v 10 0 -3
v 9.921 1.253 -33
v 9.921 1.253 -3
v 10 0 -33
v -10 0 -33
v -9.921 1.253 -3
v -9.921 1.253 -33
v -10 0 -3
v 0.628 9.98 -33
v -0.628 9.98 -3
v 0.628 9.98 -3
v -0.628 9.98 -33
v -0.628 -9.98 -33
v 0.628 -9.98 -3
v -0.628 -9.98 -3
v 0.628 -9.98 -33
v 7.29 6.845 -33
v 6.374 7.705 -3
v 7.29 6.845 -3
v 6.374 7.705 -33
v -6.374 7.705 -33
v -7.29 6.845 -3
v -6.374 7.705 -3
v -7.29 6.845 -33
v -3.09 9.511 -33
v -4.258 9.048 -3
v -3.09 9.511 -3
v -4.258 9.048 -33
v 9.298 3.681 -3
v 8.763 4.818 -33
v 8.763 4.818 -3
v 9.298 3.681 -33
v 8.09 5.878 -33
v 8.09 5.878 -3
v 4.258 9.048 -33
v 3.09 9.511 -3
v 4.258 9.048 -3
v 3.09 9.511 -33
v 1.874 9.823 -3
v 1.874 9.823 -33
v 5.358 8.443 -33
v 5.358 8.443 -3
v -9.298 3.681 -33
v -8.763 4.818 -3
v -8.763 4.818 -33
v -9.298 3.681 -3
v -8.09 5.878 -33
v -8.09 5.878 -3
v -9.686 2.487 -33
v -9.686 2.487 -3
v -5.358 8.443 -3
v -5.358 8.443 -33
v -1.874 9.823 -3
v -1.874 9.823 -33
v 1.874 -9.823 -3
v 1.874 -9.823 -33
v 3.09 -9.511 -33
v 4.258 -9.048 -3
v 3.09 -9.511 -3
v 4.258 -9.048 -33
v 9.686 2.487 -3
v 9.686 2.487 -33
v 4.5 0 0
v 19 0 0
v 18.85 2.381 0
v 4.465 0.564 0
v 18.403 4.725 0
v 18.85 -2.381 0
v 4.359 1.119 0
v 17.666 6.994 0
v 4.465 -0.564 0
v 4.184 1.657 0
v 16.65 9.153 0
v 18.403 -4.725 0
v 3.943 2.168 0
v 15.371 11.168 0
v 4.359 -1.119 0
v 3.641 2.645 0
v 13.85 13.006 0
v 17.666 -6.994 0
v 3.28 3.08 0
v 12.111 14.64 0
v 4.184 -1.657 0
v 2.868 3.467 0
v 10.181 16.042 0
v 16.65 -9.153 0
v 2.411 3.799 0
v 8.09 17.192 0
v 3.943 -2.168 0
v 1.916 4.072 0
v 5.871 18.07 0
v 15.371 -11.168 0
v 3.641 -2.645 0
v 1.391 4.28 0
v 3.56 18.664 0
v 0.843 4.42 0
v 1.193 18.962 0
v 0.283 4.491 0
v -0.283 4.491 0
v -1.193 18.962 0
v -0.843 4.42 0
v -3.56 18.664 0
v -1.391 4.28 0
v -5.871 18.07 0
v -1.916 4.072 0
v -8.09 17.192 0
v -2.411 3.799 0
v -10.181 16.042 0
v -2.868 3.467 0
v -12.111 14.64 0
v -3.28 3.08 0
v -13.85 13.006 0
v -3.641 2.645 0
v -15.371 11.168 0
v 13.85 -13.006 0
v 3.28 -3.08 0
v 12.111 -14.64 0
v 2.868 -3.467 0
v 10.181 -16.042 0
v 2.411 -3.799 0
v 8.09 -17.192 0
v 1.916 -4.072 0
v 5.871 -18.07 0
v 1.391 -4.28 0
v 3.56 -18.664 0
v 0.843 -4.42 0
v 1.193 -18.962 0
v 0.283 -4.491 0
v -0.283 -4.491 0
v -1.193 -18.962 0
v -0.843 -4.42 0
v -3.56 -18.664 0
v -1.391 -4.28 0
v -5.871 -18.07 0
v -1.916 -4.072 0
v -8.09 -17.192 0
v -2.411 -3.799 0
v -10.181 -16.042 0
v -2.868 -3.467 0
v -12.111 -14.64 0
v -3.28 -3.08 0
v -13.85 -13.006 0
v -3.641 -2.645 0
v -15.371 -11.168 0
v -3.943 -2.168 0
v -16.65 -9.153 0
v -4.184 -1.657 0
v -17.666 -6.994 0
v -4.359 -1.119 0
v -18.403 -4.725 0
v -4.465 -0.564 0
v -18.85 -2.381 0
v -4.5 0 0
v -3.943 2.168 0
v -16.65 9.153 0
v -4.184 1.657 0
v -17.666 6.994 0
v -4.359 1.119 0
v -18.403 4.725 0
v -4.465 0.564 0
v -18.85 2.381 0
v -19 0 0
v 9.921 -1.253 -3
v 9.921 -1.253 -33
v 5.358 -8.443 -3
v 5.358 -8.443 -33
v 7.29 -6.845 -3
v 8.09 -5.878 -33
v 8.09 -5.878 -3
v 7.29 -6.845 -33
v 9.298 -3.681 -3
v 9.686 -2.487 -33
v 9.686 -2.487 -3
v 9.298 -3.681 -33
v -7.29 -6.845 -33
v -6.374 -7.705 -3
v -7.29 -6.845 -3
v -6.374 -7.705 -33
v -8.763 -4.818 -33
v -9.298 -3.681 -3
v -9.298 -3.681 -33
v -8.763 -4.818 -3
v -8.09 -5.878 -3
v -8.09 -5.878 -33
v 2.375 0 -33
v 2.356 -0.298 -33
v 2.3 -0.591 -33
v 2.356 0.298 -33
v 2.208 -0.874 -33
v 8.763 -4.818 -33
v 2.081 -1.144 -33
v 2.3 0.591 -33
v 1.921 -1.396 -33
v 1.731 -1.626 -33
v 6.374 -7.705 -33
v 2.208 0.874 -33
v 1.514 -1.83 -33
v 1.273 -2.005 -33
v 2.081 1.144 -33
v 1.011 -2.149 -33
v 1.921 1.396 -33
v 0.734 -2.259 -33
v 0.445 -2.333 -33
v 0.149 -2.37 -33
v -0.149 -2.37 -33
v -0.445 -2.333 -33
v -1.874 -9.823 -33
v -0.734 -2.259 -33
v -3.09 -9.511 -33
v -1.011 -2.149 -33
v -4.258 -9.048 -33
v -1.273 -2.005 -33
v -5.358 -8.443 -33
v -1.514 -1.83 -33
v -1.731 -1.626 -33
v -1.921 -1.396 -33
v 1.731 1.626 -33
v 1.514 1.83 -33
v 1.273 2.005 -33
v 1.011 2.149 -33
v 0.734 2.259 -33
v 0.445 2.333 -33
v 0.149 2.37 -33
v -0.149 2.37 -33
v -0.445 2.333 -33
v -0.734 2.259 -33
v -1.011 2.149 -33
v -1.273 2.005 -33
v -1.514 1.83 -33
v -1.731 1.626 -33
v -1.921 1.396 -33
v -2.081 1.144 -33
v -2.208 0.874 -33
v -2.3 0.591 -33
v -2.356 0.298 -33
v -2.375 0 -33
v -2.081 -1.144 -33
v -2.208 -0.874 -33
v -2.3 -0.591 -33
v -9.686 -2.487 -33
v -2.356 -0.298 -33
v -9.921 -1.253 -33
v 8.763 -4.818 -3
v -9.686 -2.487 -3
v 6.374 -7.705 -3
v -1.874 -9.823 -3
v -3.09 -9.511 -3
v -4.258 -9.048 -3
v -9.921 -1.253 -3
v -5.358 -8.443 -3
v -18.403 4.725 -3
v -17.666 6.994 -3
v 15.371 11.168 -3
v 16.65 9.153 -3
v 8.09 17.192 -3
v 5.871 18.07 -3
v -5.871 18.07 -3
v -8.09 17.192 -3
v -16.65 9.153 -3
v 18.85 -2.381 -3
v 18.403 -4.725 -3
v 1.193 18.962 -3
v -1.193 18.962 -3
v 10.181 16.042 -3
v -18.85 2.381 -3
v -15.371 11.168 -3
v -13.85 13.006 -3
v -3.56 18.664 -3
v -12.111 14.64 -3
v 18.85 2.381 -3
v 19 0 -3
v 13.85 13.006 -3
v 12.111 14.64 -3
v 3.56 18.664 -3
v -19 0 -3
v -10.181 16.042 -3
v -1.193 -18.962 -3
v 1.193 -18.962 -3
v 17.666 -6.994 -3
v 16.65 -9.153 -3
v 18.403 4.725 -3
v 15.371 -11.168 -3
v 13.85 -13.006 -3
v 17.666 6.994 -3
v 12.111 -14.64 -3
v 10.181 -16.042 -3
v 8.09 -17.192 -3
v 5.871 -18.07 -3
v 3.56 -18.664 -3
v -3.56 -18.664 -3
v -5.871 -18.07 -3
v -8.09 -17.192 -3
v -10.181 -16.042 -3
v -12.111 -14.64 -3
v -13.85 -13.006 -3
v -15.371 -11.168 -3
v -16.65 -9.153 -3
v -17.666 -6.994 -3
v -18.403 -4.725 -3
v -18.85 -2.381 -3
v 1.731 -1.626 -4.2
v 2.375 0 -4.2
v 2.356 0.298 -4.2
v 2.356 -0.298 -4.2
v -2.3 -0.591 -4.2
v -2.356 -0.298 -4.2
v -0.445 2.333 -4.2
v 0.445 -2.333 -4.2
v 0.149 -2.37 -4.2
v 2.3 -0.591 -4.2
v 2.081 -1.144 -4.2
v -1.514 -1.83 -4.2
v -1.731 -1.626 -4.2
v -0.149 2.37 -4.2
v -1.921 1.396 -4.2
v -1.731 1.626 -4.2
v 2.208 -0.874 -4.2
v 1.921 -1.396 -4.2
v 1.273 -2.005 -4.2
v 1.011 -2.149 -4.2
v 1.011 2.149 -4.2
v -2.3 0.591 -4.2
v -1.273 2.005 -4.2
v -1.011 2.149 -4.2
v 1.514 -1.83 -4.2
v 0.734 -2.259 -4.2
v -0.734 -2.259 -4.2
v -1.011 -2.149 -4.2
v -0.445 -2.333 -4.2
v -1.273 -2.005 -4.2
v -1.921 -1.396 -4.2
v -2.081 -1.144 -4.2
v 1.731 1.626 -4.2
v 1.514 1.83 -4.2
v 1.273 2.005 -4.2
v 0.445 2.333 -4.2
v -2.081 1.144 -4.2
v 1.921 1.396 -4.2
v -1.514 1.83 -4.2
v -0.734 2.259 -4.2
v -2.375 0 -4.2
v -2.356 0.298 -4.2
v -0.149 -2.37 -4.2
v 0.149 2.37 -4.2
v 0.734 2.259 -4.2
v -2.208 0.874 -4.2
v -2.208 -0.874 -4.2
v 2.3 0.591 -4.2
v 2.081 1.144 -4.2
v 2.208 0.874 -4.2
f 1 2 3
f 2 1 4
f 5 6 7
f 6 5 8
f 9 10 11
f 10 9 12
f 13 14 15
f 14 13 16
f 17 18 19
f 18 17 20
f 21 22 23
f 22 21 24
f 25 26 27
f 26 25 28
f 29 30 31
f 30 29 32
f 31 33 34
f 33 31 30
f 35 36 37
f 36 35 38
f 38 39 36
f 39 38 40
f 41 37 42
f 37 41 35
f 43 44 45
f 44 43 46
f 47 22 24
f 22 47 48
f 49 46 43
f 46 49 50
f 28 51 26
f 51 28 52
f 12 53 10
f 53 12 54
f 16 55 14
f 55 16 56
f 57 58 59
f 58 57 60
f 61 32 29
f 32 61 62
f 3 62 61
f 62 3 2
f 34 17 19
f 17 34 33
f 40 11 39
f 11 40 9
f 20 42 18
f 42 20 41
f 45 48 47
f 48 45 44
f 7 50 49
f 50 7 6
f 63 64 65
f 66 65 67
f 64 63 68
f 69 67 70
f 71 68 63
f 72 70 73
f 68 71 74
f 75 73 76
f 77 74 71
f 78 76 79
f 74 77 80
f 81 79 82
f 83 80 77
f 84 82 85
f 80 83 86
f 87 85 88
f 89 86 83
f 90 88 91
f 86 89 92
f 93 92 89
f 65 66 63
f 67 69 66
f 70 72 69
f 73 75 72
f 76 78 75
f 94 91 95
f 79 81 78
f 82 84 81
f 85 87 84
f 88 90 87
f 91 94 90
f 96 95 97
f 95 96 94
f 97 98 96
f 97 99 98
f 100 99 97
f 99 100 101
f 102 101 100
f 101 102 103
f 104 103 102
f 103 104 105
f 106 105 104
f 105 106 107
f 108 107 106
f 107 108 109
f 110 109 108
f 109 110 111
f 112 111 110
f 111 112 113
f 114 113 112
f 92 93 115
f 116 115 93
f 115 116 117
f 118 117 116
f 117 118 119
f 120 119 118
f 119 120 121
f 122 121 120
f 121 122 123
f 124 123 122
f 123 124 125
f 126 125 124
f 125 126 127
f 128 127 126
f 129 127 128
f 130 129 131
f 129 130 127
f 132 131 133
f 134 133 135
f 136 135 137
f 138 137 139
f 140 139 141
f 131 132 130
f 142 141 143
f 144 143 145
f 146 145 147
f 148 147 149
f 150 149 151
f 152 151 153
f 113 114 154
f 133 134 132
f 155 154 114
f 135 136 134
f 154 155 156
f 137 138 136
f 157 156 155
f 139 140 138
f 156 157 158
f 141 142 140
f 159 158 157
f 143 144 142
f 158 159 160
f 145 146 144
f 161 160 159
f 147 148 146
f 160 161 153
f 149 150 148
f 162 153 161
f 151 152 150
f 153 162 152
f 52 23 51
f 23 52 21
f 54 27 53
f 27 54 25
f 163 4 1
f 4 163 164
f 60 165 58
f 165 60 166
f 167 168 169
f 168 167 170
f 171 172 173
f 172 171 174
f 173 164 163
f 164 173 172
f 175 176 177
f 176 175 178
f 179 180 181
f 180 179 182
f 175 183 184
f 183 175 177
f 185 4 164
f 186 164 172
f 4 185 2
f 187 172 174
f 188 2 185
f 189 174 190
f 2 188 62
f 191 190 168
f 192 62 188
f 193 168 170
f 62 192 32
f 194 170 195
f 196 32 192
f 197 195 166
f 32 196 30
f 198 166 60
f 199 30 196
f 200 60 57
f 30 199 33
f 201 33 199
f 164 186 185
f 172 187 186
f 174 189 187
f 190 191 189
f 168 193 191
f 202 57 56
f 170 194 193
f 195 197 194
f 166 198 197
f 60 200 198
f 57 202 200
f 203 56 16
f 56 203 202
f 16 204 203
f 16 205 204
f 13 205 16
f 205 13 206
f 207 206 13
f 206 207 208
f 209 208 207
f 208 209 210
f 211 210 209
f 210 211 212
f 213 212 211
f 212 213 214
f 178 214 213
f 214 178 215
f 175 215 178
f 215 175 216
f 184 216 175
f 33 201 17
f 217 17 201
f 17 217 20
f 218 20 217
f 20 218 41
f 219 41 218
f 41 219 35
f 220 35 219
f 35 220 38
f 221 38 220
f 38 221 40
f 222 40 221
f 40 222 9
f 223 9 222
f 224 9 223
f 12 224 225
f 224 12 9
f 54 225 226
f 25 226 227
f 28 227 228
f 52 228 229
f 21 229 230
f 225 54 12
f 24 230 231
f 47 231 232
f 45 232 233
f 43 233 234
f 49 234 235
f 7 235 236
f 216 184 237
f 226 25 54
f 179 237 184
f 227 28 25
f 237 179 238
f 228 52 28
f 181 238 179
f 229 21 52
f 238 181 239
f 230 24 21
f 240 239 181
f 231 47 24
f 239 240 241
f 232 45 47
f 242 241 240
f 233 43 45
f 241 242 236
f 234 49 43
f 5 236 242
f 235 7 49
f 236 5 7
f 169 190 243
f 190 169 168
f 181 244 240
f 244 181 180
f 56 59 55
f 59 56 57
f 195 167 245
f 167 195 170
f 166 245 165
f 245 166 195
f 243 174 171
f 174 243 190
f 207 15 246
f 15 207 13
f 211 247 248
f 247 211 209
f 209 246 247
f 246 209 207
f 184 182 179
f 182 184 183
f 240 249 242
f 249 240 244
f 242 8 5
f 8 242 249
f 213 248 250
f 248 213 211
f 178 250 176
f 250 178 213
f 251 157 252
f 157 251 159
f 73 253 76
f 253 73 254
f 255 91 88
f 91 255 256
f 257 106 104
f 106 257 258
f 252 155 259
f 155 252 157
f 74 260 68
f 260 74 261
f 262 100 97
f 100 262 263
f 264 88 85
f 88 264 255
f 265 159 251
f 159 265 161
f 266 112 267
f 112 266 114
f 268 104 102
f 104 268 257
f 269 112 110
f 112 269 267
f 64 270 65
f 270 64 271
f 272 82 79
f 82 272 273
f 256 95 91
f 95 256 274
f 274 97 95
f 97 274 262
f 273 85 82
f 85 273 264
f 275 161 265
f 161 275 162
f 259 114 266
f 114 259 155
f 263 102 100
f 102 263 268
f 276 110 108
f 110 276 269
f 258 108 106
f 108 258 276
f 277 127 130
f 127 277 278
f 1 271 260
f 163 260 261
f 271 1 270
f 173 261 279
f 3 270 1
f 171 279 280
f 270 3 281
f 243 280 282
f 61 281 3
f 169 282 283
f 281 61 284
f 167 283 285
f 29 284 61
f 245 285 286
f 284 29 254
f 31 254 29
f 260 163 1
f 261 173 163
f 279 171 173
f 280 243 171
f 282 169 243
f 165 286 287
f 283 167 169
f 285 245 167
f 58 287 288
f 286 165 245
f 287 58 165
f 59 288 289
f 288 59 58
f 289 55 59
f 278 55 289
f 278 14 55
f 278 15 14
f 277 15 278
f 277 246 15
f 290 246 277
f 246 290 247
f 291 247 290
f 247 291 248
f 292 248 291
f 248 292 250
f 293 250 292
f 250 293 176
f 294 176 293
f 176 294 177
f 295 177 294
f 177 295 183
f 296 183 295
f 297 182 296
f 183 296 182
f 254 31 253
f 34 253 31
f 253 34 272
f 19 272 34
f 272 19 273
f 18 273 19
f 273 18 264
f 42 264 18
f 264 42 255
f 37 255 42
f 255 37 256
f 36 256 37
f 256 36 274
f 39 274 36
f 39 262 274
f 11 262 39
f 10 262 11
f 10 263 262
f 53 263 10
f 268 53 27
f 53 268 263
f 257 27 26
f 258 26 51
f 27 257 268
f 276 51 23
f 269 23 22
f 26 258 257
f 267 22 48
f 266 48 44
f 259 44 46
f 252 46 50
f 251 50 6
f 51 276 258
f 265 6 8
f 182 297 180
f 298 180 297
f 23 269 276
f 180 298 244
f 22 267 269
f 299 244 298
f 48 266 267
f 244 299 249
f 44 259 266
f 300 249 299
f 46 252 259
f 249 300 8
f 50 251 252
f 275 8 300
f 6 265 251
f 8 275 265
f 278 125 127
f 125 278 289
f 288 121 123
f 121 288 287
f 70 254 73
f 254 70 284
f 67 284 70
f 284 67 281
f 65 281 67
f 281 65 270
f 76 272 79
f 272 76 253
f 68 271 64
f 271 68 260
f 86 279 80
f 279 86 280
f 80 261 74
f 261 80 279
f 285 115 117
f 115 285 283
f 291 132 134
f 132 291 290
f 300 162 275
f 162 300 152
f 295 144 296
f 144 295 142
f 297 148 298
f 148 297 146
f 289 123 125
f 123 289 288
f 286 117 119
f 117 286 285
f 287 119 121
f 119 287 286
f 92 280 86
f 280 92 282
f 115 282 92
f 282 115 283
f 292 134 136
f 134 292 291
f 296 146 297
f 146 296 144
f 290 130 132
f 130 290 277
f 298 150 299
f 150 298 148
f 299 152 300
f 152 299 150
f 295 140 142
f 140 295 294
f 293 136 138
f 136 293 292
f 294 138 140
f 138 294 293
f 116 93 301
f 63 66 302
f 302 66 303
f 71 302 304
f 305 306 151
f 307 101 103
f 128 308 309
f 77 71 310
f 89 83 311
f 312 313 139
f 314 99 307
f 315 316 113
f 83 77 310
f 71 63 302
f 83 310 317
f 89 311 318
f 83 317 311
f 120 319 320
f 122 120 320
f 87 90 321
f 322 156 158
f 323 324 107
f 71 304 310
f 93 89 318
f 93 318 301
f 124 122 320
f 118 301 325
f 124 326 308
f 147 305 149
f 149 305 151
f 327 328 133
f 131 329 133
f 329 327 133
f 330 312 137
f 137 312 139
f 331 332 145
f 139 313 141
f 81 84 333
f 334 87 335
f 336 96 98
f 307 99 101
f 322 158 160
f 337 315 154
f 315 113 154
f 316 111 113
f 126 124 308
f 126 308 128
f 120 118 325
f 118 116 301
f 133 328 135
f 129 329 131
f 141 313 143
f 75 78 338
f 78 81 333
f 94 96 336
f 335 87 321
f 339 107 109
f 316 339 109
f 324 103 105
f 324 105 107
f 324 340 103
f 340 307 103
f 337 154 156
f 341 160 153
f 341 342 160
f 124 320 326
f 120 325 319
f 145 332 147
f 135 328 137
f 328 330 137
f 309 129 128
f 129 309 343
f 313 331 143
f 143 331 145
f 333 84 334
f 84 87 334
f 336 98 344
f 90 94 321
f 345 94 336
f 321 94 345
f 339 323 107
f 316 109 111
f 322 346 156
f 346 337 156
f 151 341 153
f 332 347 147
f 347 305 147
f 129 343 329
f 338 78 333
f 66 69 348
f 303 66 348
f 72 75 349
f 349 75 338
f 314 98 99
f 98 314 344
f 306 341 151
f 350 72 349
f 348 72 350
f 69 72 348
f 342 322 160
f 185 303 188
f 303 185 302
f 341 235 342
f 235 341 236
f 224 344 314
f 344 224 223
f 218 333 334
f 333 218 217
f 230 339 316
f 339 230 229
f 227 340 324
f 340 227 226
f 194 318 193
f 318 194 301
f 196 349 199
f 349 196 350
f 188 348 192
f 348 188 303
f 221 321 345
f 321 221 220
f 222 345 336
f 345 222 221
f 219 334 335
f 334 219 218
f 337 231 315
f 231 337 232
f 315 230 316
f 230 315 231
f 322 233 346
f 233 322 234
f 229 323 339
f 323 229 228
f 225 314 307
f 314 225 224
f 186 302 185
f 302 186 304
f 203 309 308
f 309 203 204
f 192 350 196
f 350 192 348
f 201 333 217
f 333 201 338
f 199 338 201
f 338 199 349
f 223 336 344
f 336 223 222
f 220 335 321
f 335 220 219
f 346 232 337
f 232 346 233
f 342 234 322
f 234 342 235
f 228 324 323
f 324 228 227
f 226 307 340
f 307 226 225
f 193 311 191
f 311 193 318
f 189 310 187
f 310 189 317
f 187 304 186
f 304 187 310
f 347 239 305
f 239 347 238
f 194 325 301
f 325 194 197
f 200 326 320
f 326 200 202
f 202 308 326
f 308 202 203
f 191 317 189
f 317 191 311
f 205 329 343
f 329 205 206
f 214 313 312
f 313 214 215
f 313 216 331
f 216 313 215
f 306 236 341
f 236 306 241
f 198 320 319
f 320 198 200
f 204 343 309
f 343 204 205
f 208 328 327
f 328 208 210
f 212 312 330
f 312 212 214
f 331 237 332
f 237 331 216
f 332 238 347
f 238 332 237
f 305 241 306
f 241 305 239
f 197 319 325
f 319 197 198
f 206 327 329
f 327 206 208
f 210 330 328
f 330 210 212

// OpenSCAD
$fn = 50;


difference() {
	union() {
		translate(v = [0, 0, -33.0000000000]) {
			cylinder(h = 33, r = 10.0000000000);
		}
		translate(v = [0, 0, -3.0000000000]) {
			cylinder(h = 3, r = 19.0000000000);
		}
	}
	union() {
		translate(v = [0, 0, 0]) {
			rotate(a = [0, 0, 0]) {
				difference() {
					union() {
						#translate(v = [0, 0, -33.0000000000]) {
							cylinder(h = 33, r = 2.2500000000);
						}
						#translate(v = [0, 0, -4.2000000000]) {
							cylinder(h = 4.2000000000, r = 10.0000000000, r1 = 2.3750000000, r2 = 4.5000000000);
						}
						#translate(v = [0, 0, -33.0000000000]) {
							cylinder(h = 33, r = 2.3750000000);
						}
						#translate(v = [0, 0, -33.0000000000]) {
							cylinder(h = 33, r = 2.2500000000);
						}
					}
					union();
				}
			}
		}
	}
}
